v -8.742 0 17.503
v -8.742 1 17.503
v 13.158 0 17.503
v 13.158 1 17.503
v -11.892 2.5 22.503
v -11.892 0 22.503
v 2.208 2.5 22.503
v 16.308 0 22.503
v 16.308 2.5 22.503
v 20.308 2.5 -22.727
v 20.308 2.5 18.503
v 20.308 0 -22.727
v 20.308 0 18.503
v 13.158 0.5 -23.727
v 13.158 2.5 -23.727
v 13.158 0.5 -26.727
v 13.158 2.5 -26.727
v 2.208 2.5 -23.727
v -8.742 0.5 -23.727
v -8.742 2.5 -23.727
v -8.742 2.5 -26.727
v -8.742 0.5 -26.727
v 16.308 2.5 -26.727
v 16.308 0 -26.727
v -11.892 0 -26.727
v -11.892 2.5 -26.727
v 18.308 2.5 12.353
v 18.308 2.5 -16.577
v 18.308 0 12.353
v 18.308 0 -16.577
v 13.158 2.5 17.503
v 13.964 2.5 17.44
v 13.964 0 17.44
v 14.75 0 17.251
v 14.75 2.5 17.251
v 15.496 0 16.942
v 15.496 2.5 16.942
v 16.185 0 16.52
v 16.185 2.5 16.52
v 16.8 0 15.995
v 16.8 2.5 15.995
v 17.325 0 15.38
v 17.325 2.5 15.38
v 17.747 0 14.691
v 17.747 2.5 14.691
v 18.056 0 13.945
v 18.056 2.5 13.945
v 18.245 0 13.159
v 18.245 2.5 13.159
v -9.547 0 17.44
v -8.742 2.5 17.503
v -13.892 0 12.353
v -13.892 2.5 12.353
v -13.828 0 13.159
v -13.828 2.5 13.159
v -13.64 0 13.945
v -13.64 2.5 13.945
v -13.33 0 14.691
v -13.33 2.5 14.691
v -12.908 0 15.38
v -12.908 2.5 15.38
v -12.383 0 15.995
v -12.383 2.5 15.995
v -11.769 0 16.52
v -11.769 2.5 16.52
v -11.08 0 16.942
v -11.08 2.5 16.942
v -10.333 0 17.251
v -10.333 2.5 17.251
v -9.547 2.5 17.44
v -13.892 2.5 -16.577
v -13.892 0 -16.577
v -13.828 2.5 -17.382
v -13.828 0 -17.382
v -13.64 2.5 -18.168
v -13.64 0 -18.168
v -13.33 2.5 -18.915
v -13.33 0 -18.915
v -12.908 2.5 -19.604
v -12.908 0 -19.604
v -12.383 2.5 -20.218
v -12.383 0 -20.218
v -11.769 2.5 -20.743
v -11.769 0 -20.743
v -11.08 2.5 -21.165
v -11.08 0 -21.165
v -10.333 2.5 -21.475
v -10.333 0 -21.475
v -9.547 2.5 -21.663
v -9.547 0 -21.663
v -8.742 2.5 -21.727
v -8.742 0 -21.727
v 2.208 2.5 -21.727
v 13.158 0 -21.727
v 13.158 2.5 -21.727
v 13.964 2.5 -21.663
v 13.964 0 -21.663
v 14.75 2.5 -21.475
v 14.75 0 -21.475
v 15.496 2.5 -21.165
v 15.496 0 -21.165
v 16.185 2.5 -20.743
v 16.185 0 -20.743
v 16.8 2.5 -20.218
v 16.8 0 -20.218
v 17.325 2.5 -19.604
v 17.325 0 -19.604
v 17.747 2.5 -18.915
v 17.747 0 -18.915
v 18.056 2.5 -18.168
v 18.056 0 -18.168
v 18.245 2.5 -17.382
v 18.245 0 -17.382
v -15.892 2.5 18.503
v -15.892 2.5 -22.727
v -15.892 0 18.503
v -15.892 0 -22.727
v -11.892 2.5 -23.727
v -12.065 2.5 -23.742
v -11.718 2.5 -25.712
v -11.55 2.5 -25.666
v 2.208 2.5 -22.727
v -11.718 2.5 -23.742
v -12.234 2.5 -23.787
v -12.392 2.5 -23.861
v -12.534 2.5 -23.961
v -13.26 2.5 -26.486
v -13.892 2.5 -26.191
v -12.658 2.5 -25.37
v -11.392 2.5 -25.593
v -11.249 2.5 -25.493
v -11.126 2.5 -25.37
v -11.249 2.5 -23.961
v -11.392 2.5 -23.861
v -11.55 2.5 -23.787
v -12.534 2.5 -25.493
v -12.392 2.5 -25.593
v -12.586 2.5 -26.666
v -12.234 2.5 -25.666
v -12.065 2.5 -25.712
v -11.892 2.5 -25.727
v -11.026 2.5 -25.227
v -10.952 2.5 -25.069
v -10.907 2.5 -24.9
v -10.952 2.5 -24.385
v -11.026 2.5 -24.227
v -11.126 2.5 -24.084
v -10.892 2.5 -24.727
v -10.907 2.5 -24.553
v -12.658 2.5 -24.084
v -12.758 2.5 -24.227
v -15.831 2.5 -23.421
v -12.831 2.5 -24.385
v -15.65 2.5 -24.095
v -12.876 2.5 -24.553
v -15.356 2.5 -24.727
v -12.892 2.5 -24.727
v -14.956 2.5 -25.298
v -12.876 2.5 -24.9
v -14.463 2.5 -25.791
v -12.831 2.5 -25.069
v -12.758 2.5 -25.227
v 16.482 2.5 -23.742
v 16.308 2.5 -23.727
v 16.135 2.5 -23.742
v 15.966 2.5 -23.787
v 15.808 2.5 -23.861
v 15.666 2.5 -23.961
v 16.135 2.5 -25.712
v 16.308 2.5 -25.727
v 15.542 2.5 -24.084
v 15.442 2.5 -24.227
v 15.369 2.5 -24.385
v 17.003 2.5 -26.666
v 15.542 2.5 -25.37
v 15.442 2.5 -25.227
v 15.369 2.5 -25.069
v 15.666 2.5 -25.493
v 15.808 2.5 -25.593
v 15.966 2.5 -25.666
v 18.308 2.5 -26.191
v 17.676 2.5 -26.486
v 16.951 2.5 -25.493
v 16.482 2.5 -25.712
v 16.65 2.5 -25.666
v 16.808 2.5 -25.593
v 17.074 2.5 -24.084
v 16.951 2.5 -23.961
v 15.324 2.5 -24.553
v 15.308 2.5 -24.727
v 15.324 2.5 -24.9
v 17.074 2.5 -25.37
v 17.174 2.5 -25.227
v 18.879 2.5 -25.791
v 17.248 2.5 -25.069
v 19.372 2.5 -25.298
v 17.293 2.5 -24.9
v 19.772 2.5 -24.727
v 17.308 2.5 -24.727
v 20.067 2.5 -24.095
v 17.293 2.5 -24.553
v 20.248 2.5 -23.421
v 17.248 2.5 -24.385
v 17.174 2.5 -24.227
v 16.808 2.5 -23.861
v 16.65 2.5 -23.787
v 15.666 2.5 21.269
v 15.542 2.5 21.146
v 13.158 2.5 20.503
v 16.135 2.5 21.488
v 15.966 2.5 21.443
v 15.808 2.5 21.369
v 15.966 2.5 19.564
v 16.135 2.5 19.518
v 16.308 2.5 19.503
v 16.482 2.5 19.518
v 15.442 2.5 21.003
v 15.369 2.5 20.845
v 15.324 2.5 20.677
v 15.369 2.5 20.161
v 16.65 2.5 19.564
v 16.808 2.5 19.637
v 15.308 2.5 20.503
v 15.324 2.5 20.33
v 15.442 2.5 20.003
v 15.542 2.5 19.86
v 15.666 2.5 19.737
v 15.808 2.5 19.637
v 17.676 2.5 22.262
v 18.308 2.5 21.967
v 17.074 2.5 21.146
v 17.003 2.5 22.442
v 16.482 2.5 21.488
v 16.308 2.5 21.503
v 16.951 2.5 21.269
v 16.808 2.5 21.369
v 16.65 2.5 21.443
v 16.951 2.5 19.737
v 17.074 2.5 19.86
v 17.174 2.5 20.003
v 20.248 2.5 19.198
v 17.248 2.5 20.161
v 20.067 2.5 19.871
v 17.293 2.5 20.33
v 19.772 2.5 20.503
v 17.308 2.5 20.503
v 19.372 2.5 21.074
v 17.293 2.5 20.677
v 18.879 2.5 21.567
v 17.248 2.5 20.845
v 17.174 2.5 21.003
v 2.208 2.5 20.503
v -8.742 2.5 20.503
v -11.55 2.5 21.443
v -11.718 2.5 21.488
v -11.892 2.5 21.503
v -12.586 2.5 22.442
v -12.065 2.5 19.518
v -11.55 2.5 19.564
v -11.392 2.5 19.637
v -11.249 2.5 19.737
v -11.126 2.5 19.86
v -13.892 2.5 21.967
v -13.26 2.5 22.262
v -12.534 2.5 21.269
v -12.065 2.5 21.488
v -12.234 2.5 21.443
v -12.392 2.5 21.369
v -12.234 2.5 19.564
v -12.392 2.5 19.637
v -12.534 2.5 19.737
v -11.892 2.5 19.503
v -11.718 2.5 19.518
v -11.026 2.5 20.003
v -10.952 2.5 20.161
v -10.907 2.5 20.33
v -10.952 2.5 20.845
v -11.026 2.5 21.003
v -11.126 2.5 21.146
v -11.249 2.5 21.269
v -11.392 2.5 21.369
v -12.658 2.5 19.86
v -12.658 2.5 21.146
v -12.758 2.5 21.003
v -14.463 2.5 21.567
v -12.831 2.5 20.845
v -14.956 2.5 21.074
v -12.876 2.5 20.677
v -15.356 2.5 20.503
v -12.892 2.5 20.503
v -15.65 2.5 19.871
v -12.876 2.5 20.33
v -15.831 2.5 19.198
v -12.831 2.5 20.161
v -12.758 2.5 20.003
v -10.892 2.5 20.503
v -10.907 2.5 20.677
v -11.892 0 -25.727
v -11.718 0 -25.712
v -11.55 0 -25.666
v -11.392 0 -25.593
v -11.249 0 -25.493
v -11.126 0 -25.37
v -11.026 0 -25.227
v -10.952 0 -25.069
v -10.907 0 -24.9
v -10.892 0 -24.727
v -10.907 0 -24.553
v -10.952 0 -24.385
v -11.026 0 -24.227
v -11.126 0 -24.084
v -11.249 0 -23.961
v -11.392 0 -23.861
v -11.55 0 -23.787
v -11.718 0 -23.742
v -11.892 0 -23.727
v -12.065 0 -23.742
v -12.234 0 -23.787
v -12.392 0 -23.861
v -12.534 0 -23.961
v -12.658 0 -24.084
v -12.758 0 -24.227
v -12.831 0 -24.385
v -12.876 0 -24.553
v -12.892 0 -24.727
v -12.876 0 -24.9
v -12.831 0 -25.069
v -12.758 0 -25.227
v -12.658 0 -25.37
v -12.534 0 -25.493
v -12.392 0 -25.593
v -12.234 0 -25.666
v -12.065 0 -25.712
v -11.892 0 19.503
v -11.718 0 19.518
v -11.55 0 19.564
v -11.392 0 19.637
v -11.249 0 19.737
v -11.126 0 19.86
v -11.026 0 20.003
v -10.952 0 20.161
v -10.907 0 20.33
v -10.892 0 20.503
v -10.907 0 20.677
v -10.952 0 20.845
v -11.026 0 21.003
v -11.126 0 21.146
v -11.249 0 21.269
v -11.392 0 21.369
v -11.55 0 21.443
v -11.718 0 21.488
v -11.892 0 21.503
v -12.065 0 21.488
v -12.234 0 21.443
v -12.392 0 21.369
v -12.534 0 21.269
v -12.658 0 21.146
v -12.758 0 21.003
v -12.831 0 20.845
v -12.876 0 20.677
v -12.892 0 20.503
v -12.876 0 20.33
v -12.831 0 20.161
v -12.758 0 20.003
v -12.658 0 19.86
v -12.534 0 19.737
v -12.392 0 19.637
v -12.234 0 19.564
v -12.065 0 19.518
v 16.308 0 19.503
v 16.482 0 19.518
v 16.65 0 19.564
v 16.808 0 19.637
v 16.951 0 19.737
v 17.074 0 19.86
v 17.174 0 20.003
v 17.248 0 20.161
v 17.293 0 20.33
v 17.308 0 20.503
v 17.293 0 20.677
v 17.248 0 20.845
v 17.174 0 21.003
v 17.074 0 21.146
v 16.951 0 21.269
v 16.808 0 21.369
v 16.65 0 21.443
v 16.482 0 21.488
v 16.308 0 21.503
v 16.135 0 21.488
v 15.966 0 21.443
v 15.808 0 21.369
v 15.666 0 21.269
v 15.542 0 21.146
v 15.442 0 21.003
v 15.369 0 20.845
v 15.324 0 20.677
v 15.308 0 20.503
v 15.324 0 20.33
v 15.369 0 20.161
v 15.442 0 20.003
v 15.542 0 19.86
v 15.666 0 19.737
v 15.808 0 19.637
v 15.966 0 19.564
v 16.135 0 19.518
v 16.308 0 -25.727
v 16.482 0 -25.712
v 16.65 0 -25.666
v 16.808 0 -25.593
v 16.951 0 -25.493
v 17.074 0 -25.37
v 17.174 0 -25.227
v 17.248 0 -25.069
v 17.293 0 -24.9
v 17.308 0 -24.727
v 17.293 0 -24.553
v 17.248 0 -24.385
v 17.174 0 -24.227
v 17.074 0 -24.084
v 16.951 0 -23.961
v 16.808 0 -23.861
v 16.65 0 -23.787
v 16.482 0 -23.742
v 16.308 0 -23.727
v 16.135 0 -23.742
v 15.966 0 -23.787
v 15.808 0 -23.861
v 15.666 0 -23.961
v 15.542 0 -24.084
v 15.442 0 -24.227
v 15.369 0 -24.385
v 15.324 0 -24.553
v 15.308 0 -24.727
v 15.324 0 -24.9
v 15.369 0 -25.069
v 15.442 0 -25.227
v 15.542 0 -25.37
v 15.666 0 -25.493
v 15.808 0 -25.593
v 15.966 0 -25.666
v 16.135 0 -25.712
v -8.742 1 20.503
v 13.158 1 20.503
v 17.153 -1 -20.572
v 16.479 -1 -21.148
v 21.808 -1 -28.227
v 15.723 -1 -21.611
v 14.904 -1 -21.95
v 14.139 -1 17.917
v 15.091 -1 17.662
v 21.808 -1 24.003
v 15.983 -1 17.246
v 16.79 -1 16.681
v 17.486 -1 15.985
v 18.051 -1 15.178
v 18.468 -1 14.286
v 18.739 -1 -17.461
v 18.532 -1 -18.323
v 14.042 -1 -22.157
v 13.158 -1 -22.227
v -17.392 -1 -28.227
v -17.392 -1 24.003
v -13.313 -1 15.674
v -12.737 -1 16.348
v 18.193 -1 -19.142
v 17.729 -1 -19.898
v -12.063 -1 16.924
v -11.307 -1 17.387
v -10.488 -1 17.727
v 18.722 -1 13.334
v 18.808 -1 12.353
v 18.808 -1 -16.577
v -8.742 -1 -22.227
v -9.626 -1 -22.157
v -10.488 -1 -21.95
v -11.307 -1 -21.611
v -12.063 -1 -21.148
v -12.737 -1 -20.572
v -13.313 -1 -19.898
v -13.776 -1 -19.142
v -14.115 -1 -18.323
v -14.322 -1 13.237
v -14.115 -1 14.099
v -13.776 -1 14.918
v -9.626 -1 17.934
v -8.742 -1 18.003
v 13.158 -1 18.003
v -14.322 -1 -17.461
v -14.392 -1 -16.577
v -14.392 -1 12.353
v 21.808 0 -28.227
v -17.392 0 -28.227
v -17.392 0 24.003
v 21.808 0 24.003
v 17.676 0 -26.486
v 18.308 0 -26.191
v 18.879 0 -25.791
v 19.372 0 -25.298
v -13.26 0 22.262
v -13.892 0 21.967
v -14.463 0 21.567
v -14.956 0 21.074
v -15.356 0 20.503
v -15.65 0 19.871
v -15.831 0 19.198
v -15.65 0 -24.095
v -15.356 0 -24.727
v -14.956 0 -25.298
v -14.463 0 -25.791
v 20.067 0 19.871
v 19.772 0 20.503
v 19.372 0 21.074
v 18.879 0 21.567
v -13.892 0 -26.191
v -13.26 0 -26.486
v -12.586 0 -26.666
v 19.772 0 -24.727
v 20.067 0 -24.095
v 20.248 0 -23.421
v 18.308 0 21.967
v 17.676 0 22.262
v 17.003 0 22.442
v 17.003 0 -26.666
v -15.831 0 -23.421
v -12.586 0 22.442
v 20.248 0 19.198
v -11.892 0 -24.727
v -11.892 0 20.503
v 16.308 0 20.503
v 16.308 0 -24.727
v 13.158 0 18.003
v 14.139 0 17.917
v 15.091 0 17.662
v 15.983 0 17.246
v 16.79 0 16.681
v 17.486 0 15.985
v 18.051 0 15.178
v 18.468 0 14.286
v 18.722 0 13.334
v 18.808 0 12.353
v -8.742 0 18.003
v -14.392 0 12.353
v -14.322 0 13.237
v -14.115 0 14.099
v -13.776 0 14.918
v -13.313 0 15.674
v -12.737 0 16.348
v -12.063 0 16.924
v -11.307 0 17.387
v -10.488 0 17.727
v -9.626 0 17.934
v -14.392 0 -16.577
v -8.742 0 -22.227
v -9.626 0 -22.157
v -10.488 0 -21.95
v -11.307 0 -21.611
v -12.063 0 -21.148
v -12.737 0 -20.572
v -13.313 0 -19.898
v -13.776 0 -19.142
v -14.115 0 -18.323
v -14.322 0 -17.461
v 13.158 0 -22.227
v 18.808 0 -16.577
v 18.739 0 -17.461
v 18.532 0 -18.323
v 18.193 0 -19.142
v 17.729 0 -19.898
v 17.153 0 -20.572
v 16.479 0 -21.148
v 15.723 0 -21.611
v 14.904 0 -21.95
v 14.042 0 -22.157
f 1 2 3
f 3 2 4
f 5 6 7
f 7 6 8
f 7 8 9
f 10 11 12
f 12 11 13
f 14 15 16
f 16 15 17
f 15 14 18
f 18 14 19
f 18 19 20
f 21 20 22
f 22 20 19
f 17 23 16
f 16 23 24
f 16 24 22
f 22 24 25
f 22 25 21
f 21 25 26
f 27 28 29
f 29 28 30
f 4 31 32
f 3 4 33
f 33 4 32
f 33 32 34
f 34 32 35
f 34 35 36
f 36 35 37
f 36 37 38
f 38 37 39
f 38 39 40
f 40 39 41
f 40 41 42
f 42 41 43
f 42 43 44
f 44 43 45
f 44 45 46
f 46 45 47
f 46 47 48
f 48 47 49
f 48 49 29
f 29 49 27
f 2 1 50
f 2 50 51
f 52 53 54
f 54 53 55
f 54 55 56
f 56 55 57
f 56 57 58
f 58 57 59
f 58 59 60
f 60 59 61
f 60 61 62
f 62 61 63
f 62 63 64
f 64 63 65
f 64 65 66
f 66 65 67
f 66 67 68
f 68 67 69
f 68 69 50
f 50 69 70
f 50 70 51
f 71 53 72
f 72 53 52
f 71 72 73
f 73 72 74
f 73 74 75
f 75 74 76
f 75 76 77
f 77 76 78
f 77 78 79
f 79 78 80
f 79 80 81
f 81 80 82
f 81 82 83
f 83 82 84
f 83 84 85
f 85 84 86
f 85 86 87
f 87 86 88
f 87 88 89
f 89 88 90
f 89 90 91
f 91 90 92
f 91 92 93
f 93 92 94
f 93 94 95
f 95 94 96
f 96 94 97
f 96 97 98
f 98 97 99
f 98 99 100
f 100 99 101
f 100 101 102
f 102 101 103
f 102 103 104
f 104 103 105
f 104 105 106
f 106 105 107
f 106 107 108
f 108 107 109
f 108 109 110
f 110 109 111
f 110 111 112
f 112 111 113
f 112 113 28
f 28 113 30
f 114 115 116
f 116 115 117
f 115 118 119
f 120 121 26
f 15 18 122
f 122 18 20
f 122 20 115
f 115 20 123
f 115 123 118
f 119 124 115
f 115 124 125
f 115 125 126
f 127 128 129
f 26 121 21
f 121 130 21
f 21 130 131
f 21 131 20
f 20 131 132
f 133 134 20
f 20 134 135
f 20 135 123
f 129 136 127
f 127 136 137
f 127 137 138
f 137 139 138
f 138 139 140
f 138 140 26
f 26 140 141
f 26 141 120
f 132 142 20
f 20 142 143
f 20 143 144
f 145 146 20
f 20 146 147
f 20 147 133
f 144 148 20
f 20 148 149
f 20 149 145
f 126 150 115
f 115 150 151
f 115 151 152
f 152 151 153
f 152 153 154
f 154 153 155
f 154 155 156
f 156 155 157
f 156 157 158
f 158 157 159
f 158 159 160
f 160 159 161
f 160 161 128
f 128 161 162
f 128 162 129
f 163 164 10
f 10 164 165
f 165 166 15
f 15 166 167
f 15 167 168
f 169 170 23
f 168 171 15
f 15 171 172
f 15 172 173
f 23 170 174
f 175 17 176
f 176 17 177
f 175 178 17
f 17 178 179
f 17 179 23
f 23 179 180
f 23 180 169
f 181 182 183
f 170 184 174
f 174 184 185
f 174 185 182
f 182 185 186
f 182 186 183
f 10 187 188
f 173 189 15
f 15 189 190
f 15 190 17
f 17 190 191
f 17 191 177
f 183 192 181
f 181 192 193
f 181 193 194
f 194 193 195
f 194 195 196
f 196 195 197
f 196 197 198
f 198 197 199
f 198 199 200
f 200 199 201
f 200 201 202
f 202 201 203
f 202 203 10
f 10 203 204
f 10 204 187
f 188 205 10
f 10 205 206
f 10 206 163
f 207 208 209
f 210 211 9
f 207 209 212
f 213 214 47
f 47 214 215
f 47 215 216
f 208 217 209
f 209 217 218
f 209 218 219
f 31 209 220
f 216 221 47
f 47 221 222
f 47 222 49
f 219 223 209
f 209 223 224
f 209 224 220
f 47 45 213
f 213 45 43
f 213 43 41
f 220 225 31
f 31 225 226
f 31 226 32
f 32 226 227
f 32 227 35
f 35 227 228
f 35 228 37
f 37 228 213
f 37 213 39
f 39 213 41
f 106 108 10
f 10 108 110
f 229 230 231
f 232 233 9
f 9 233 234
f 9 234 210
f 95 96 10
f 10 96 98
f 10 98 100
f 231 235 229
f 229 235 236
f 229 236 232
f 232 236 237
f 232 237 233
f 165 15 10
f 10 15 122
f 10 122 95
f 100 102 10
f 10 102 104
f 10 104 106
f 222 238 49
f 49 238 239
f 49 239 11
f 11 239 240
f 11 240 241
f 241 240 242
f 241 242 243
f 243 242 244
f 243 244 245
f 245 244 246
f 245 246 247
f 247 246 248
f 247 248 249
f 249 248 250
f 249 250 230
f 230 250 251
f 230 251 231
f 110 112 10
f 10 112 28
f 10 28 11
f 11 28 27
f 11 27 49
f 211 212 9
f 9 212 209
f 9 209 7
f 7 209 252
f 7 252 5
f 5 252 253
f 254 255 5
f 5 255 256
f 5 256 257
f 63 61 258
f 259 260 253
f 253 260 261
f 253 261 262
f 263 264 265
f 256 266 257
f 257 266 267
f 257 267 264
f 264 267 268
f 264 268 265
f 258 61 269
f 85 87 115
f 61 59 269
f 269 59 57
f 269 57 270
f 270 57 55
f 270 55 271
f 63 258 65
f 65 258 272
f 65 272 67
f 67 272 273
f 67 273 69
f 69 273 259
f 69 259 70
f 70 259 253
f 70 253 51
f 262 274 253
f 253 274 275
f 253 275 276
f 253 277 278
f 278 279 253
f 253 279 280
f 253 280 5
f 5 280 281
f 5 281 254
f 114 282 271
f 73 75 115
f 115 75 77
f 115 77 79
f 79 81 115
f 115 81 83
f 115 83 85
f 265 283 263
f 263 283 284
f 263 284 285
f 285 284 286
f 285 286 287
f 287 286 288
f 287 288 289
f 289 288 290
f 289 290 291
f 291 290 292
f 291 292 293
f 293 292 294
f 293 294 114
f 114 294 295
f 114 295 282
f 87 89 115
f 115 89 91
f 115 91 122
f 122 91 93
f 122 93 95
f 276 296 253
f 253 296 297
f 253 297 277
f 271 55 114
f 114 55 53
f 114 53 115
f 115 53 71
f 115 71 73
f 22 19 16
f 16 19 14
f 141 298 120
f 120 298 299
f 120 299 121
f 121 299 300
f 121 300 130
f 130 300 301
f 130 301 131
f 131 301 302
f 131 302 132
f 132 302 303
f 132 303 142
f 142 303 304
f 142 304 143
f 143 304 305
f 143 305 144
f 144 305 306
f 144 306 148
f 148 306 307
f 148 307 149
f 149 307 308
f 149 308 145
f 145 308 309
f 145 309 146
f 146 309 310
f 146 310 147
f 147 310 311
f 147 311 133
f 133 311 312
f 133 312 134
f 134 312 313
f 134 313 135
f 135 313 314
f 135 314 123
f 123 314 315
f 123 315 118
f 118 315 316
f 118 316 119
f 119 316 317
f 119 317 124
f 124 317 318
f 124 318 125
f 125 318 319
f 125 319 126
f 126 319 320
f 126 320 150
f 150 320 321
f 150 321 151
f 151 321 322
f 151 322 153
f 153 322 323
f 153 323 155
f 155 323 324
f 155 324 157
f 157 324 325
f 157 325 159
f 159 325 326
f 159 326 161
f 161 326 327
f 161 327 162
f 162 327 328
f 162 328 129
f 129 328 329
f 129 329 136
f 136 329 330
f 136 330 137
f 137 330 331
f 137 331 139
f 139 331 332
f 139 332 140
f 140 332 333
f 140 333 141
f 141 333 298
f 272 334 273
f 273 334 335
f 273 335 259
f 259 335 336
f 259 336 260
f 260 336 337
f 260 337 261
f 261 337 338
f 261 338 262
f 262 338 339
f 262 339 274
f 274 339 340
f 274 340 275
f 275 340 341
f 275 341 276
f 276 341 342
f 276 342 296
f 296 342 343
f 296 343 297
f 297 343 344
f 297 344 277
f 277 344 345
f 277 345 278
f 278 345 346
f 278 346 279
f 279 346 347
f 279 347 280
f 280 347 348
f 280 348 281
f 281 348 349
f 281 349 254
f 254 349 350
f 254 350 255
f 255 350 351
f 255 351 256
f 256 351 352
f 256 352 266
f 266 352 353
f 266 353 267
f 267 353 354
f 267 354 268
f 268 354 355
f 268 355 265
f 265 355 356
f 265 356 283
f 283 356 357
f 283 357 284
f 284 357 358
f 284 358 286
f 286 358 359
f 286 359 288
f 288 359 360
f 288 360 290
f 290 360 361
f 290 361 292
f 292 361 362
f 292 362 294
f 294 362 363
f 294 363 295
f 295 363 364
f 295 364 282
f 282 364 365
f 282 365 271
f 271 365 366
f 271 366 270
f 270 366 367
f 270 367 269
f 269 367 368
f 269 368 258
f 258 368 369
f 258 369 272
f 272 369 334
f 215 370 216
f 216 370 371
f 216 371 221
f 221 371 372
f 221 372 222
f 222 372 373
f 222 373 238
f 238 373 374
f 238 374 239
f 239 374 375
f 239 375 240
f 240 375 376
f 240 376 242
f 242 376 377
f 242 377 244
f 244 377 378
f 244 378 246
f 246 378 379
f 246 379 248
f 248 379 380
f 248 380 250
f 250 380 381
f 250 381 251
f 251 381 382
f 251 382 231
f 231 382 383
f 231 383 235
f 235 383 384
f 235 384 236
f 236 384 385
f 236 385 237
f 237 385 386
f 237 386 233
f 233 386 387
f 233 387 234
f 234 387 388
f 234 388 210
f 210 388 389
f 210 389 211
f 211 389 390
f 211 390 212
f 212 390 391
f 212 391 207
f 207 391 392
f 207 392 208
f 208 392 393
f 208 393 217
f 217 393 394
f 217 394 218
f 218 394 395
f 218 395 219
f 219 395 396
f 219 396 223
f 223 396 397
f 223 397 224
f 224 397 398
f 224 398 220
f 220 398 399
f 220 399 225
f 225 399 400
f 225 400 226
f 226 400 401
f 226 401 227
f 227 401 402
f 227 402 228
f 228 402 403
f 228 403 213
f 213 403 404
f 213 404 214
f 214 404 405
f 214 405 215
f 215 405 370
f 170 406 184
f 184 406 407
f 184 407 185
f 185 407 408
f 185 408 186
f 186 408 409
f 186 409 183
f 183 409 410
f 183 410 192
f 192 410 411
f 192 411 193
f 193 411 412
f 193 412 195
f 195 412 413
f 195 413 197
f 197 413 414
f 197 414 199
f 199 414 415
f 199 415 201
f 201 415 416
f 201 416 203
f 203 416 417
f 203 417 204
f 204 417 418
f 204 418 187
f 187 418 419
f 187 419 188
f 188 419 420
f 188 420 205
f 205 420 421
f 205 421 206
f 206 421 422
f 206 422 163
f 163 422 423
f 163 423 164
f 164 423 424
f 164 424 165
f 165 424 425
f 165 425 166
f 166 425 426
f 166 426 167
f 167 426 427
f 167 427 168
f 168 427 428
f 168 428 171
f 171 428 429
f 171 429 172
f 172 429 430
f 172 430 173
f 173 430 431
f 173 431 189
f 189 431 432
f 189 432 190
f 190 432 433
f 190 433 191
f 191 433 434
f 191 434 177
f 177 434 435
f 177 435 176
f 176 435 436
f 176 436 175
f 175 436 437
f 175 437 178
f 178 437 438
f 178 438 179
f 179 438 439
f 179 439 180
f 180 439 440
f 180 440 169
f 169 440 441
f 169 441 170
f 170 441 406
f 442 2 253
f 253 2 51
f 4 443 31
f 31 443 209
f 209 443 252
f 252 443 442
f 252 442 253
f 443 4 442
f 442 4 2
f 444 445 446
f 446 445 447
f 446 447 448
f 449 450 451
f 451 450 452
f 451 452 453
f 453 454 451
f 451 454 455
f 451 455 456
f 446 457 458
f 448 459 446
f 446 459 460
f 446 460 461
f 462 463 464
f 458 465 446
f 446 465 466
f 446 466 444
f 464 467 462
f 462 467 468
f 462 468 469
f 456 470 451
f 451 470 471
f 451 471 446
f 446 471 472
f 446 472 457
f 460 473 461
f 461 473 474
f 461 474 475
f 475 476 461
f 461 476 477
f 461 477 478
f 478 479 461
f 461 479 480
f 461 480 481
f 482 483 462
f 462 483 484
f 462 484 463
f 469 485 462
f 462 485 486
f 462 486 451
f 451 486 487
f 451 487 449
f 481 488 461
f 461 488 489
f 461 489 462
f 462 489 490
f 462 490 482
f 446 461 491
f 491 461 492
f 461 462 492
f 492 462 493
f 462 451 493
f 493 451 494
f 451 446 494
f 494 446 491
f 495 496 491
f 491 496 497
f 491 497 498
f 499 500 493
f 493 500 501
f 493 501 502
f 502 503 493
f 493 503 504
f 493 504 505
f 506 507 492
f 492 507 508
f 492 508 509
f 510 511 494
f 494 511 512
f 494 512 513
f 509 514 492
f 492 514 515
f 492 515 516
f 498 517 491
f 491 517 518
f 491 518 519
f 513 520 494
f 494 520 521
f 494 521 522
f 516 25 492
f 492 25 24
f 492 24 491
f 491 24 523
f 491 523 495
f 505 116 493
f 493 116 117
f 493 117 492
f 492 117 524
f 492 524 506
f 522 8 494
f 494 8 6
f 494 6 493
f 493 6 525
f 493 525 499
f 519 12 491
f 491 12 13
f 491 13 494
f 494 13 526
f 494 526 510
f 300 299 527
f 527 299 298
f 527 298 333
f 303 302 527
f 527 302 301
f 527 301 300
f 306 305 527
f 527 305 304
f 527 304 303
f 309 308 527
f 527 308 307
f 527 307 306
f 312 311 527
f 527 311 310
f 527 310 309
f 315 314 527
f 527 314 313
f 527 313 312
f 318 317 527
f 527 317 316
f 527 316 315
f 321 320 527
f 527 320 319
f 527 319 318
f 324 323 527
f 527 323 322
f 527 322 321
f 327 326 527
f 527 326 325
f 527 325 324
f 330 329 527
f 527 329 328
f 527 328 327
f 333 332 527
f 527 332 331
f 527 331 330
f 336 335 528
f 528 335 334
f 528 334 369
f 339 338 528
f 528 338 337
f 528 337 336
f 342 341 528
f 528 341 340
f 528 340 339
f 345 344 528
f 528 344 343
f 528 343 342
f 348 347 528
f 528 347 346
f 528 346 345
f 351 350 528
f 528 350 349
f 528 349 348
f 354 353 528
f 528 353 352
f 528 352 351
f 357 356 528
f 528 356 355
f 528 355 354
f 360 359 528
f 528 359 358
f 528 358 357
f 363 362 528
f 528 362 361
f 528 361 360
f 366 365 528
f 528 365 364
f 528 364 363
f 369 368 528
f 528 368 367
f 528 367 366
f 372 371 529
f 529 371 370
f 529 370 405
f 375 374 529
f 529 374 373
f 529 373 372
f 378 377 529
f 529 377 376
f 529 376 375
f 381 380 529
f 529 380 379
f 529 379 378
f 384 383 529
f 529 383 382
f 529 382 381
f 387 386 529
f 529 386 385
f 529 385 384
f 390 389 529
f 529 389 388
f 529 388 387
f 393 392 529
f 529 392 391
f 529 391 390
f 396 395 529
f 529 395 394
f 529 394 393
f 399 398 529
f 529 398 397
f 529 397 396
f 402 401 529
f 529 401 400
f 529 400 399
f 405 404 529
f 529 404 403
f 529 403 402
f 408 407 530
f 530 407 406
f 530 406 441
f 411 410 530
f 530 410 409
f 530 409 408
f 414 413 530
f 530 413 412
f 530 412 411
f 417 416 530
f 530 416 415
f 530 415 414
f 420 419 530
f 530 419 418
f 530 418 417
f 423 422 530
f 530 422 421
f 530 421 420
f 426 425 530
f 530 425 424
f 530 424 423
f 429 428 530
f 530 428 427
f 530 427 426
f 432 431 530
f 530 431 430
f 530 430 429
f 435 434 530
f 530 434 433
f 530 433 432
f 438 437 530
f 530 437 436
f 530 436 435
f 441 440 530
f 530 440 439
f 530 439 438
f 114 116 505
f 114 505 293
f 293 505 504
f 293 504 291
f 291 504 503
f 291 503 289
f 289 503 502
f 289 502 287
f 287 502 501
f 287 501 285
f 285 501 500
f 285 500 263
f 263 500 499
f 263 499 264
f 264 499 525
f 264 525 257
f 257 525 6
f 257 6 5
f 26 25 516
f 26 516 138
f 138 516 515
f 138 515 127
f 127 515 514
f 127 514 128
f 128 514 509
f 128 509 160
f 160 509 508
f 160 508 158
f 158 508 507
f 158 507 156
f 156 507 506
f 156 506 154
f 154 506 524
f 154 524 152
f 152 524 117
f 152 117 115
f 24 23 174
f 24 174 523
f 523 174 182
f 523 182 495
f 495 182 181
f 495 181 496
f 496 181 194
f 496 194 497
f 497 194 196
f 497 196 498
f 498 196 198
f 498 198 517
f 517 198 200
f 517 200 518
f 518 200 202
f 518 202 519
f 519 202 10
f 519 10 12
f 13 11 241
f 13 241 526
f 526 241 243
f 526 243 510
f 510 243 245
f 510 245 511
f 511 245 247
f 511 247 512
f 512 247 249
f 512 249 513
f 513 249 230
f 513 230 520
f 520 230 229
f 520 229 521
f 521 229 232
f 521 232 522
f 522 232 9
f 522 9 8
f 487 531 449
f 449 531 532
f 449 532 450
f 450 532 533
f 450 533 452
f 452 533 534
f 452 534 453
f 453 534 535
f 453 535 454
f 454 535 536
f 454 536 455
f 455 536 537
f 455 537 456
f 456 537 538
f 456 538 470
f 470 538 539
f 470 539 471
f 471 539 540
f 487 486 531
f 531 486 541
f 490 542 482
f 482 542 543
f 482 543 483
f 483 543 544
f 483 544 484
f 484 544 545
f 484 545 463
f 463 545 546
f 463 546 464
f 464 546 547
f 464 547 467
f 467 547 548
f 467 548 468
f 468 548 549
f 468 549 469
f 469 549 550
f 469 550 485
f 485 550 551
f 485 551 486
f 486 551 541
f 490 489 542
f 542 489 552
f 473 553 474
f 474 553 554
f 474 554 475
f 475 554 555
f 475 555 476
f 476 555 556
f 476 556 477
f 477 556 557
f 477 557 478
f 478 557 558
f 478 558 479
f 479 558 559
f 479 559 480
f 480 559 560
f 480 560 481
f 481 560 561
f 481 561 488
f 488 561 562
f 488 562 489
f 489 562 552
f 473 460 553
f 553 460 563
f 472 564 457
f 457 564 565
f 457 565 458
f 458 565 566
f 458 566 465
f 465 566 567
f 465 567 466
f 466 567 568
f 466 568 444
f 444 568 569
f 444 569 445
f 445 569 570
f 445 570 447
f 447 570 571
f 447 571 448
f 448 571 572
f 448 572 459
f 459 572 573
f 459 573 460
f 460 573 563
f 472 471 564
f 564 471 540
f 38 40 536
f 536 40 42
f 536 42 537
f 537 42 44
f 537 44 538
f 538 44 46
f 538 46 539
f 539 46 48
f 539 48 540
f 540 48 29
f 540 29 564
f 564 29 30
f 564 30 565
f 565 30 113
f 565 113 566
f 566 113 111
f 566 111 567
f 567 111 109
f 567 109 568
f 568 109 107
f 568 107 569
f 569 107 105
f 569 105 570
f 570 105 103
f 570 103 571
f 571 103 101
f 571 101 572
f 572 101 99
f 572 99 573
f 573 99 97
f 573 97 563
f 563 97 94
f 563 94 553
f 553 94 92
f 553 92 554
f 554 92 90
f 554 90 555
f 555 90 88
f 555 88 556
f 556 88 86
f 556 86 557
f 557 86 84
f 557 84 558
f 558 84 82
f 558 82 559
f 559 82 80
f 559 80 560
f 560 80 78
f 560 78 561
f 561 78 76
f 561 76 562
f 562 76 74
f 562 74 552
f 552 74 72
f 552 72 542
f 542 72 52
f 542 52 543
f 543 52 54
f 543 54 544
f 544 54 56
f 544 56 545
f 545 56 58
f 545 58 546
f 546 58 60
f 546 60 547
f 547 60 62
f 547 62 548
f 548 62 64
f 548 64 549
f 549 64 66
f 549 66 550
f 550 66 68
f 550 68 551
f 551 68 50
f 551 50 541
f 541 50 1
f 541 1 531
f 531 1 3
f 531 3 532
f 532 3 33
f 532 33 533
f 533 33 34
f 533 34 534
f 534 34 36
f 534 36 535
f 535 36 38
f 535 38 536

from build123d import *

# Parameters (mm, degrees)
EXTRUDE_1_DEPTH       = 2.5
SKETCH_1_3_W          = 21.9
SKETCH_1_3_H          = 3
EXTRUDE_2_DEPTH       = 0.5
SKETCH_2_R            = 1
CUT_EXTRUDE_1_DEPTH   = 34.660057049
SKETCH_3_W            = 21.9
SKETCH_3_H            = 3
CUT_EXTRUDE_2_DEPTH   = 1.5
SKETCH_4_W            = 39.2
SKETCH_4_H            = 52.23
EXTRUDE_3_DEPTH       = 1
CUT_EXTRUDE_START     = -1
CUT_EXTRUDE_3_DEPTH   = 1
FILLET_1_R            = 4
CUT_EXTRUDE_1_2_DEPTH = 1


with BuildPart() as part:
    # 草图1 → 凸台-拉伸1 (new body)
    with BuildSketch(Plane(origin=(0, 0, 0), x_dir=(1, 0, 0), z_dir=(0, 1, 0))):
        Polygon((20.308319986, -22.503204833), (20.308319986, 26.726795167), (13.158319986, 26.726795167), (13.158319986, 23.726795167), (-8.741680014, 23.726795167), (-8.741680014, 26.726795167), (-15.891680014, 26.726795167), (-15.891680014, -22.503204833), align=None)
        with BuildLine():
            ThreePointArc((18.308319986, -12.353204833), (16.799919909, -15.994804756), (13.158319986, -17.503204833))
            Line((13.158319986, -17.503204833), (-8.741680014, -17.503204833))
            ThreePointArc((-8.741680014, -17.503204833), (-12.383279937, -15.994804756), (-13.891680014, -12.353204833))
            Line((-13.891680014, -12.353204833), (-13.891680014, 16.576795167))
            ThreePointArc((-13.891680014, 16.576795167), (-12.383279937, 20.21839509), (-8.741680014, 21.726795167))
            Line((-8.741680014, 21.726795167), (13.158319986, 21.726795167))
            ThreePointArc((13.158319986, 21.726795167), (16.799919909, 20.21839509), (18.308319986, 16.576795167))
            Line((18.308319986, 16.576795167), (18.308319986, -12.353204833))
        make_face(mode=Mode.SUBTRACT)
    extrude(amount=EXTRUDE_1_DEPTH)

    # 草图1<3> → 凸台-拉伸2 (add)
    with BuildSketch(Plane(origin=(0, 0, 0), x_dir=(1, 0, 0), z_dir=(0, 1, 0))):
        with Locations((2.208319986, 25.226795167)):
            Rectangle(SKETCH_1_3_W, SKETCH_1_3_H)
    extrude(amount=EXTRUDE_2_DEPTH)

    # 草图2 → Cut-Extrude 1 (cut, through all)
    with BuildSketch(Plane.XZ):
        with Locations((-11.891680014, -24.726795167)):
            Circle(SKETCH_2_R)
        with Locations((-11.891680014, 20.503204833)):
            Circle(SKETCH_2_R)
        with Locations((16.308319986, 20.503204833)):
            Circle(SKETCH_2_R)
        with Locations((16.308319986, -24.726795167)):
            Circle(SKETCH_2_R)
    extrude(amount=-CUT_EXTRUDE_1_DEPTH, mode=Mode.SUBTRACT)

    # 草图3 → 切除-拉伸2 (cut)
    with BuildSketch(Plane(origin=(0, 2.5, 0), x_dir=(1, 0, 0), z_dir=(0, 1, 0))):
        with Locations((2.208319986, -19.003204833)):
            Rectangle(SKETCH_3_W, SKETCH_3_H)
    extrude(amount=-CUT_EXTRUDE_2_DEPTH, mode=Mode.SUBTRACT)

    # 草图4 → 凸台-拉伸3 (add)
    with BuildSketch(Plane.XZ):
        with Locations((2.208319986, -2.111795167)):
            Rectangle(SKETCH_4_W, SKETCH_4_H)
    extrude(amount=EXTRUDE_3_DEPTH)

    # 草图5 → 切除-拉伸3 (cut)
    with BuildSketch(Plane(origin=(0, 0, 0), x_dir=(1, 0, 0), z_dir=(0, 1, 0)).offset(CUT_EXTRUDE_START)):
        with BuildLine():
            Line((18.308319986, -12.353204833), (18.308319986, 16.576795167))
            ThreePointArc((18.308319986, 16.576795167), (16.799919909, 20.21839509), (13.158319986, 21.726795167))
            Line((13.158319986, 21.726795167), (-8.741680014, 21.726795167))
            ThreePointArc((-8.741680014, 21.726795167), (-12.383279937, 20.21839509), (-13.891680014, 16.576795167))
            Line((-13.891680014, 16.576795167), (-13.891680014, -12.353204833))
            ThreePointArc((-13.891680014, -12.353204833), (-12.383279937, -15.994804756), (-8.741680014, -17.503204833))
            Line((-8.741680014, -17.503204833), (13.158319986, -17.503204833))
            ThreePointArc((13.158319986, -17.503204833), (16.799919909, -15.994804756), (18.308319986, -12.353204833))
        make_face()
    extrude(amount=CUT_EXTRUDE_3_DEPTH, mode=Mode.SUBTRACT)

    # 圆角1
    fillet_1_edges = [part.edges().sort_by_distance(p)[0] for p in [
        (-15.891680014, 1.25, 22.503204833),
        (-15.891680014, 1.25, -26.726795167),
        (20.308319986, 1.25, -26.726795167),
        (20.308319986, 1.25, 22.503204833),
    ]]
    fillet(fillet_1_edges, radius=FILLET_1_R)

    # 草图5<2> → Cut-Extrude 1 2 (cut)
    with BuildSketch(Plane(origin=(0, 0, 0), x_dir=(1, 0, 0), z_dir=(0, 1, 0)).offset(CUT_EXTRUDE_START)):
        with BuildLine():
            Line((-8.741680014, -18.003204833), (13.158319986, -18.003204833))
            ThreePointArc((13.158319986, -18.003204833), (17.153473299, -16.348358147), (18.808319986, -12.353204833))
            Line((18.808319986, -12.353204833), (18.808319986, 16.576795167))
            ThreePointArc((18.808319986, 16.576795167), (17.153473299, 20.571948481), (13.158319986, 22.226795167))
            Line((13.158319986, 22.226795167), (-8.741680014, 22.226795167))
            ThreePointArc((-8.741680014, 22.226795167), (-12.736833328, 20.571948481), (-14.391680014, 16.576795167))
            Line((-14.391680014, 16.576795167), (-14.391680014, -12.353204833))
            ThreePointArc((-14.391680014, -12.353204833), (-12.736833328, -16.348358147), (-8.741680014, -18.003204833))
        make_face()
        with BuildLine():
            Line((-8.741680014, -17.503204833), (13.158319986, -17.503204833))
            ThreePointArc((13.158319986, -17.503204833), (16.799919909, -15.994804756), (18.308319986, -12.353204833))
            Line((18.308319986, -12.353204833), (18.308319986, 16.576795167))
            ThreePointArc((18.308319986, 16.576795167), (16.799919909, 20.21839509), (13.158319986, 21.726795167))
            Line((13.158319986, 21.726795167), (-8.741680014, 21.726795167))
            ThreePointArc((-8.741680014, 21.726795167), (-12.383279937, 20.21839509), (-13.891680014, 16.576795167))
            Line((-13.891680014, 16.576795167), (-13.891680014, -12.353204833))
            ThreePointArc((-13.891680014, -12.353204833), (-12.383279937, -15.994804756), (-8.741680014, -17.503204833))
        make_face(mode=Mode.SUBTRACT)
    extrude(amount=CUT_EXTRUDE_1_2_DEPTH, mode=Mode.SUBTRACT)


solid = part.part
